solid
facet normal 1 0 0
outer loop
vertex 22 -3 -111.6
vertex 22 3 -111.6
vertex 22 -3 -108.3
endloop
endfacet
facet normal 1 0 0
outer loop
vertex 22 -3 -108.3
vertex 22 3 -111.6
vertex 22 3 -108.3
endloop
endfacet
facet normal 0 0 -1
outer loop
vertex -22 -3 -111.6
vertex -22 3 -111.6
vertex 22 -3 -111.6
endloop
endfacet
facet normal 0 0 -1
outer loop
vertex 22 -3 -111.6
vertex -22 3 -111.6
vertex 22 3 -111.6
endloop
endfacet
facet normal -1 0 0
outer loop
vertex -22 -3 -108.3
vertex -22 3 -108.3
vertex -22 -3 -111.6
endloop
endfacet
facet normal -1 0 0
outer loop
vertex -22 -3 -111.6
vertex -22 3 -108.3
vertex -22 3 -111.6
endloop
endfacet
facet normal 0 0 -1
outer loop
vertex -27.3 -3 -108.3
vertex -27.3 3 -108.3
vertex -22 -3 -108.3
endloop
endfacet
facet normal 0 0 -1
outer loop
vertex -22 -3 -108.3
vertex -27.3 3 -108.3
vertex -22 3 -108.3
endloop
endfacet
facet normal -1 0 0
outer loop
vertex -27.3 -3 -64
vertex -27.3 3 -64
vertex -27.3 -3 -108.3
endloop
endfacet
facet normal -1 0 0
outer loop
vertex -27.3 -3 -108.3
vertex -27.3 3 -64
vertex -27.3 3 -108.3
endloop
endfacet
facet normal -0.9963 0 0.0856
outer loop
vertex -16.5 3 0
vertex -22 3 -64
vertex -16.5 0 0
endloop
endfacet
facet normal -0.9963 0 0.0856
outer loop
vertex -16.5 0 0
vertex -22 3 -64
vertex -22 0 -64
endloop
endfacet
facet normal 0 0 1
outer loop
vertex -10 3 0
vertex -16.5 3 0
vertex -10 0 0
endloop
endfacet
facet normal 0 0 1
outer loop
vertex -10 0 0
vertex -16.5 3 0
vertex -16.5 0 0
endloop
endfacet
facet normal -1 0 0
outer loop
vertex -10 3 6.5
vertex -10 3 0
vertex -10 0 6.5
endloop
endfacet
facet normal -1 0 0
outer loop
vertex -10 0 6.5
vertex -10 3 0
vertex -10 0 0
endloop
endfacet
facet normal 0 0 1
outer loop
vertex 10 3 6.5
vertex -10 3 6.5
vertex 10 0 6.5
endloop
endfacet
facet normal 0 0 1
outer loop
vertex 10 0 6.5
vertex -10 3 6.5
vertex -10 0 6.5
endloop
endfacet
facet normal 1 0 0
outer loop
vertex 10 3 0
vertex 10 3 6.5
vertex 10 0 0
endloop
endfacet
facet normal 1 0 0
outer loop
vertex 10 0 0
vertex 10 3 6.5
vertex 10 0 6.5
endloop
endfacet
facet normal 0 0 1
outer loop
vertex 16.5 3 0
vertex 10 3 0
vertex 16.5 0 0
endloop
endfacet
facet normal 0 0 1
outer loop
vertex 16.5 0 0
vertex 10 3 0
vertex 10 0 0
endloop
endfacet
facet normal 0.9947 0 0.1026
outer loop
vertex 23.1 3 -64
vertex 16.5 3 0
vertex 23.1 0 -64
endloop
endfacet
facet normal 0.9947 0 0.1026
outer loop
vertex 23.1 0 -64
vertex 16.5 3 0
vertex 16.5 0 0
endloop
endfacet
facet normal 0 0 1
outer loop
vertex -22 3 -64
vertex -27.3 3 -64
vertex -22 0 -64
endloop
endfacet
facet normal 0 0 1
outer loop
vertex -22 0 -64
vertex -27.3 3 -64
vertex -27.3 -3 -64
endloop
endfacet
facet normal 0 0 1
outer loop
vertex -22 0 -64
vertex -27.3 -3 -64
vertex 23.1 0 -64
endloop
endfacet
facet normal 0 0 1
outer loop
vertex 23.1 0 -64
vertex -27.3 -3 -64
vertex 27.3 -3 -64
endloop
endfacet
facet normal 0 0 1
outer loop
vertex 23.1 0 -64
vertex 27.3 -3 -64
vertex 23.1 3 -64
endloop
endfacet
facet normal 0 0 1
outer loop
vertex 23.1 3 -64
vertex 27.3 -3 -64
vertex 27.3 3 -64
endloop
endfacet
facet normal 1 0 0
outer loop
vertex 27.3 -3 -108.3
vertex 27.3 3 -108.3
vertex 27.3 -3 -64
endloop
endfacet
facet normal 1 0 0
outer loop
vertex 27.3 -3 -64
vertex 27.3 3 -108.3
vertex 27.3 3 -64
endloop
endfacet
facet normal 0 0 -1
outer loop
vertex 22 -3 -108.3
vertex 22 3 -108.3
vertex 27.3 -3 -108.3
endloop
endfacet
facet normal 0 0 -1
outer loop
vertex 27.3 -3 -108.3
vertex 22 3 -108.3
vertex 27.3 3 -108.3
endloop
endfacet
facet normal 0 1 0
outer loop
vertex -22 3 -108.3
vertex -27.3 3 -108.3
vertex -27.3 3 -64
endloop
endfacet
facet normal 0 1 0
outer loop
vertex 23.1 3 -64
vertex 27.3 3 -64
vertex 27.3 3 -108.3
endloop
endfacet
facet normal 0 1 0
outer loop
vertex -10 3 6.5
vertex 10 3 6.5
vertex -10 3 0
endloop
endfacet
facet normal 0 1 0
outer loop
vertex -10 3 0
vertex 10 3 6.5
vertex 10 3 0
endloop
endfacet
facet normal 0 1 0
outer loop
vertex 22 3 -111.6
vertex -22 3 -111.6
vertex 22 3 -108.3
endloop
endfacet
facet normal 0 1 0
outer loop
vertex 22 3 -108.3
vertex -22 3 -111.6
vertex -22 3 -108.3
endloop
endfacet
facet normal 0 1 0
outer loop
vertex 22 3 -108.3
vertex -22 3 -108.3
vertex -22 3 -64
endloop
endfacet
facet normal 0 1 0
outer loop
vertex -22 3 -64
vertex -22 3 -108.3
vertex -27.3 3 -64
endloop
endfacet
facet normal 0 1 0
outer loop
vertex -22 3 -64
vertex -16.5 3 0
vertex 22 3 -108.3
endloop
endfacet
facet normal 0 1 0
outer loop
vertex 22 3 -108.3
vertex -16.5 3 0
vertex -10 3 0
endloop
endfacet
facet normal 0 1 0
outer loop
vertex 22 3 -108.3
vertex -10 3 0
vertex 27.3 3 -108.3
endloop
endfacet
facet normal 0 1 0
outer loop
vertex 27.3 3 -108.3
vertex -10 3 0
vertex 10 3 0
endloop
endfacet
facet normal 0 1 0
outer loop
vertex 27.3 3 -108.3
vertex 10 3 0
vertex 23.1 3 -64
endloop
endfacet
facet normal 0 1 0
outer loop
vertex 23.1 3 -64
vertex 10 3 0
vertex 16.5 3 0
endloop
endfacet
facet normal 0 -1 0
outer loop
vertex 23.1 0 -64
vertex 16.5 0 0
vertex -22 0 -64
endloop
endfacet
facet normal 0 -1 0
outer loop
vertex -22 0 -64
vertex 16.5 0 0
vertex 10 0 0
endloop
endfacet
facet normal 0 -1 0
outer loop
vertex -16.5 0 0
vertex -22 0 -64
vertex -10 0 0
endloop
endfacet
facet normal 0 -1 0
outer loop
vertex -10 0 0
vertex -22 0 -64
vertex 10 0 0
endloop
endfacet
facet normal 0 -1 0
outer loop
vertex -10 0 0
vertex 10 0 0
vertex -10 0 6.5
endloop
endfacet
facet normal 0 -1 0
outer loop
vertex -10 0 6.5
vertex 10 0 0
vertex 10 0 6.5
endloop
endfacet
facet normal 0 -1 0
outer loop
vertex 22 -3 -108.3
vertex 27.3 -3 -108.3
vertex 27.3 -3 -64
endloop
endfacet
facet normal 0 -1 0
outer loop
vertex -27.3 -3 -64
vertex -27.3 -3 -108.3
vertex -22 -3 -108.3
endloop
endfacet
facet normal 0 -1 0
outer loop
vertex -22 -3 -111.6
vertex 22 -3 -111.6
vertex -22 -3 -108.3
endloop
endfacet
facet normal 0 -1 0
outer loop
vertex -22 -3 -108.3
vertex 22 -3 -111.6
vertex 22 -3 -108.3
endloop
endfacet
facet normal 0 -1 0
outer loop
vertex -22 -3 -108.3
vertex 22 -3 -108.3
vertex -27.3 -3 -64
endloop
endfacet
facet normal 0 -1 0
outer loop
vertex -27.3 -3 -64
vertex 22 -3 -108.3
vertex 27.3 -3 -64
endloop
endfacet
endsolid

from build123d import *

# Parameters (mm, degrees)
BOSS_EXTRUDE1_DEPTH = 3
BOSS_EXTRUDE2_DEPTH = 3


with BuildPart() as part:
    # Sketch1 → Boss-Extrude1 (new body)
    with BuildSketch(Plane(origin=(0, 0, 0), x_dir=(1, 0, 0), z_dir=(0, 1, 0))):
        Polygon((-22, 64), (-16.5, 0), (-10, 0), (-10, -6.5), (10, -6.5), (10, 0), (16.5, 0), (23.1, 64), (27.3, 64), (27.3, 108.3), (22, 108.3), (22, 111.6), (-22, 111.6), (-22, 108.3), (-27.3, 108.3), (-27.3, 64), align=None)
    extrude(amount=BOSS_EXTRUDE1_DEPTH)

    # Sketch3 → Boss-Extrude2 (add)
    with BuildSketch(Plane.XZ):
        Polygon((-27.3, -64), (-27.3, -108.3), (-22, -108.3), (-22, -111.6), (22, -111.6), (22, -108.3), (27.3, -108.3), (27.3, -64), (23.1, -64), (-22, -64), align=None)
    extrude(amount=BOSS_EXTRUDE2_DEPTH)


solid = part.part
